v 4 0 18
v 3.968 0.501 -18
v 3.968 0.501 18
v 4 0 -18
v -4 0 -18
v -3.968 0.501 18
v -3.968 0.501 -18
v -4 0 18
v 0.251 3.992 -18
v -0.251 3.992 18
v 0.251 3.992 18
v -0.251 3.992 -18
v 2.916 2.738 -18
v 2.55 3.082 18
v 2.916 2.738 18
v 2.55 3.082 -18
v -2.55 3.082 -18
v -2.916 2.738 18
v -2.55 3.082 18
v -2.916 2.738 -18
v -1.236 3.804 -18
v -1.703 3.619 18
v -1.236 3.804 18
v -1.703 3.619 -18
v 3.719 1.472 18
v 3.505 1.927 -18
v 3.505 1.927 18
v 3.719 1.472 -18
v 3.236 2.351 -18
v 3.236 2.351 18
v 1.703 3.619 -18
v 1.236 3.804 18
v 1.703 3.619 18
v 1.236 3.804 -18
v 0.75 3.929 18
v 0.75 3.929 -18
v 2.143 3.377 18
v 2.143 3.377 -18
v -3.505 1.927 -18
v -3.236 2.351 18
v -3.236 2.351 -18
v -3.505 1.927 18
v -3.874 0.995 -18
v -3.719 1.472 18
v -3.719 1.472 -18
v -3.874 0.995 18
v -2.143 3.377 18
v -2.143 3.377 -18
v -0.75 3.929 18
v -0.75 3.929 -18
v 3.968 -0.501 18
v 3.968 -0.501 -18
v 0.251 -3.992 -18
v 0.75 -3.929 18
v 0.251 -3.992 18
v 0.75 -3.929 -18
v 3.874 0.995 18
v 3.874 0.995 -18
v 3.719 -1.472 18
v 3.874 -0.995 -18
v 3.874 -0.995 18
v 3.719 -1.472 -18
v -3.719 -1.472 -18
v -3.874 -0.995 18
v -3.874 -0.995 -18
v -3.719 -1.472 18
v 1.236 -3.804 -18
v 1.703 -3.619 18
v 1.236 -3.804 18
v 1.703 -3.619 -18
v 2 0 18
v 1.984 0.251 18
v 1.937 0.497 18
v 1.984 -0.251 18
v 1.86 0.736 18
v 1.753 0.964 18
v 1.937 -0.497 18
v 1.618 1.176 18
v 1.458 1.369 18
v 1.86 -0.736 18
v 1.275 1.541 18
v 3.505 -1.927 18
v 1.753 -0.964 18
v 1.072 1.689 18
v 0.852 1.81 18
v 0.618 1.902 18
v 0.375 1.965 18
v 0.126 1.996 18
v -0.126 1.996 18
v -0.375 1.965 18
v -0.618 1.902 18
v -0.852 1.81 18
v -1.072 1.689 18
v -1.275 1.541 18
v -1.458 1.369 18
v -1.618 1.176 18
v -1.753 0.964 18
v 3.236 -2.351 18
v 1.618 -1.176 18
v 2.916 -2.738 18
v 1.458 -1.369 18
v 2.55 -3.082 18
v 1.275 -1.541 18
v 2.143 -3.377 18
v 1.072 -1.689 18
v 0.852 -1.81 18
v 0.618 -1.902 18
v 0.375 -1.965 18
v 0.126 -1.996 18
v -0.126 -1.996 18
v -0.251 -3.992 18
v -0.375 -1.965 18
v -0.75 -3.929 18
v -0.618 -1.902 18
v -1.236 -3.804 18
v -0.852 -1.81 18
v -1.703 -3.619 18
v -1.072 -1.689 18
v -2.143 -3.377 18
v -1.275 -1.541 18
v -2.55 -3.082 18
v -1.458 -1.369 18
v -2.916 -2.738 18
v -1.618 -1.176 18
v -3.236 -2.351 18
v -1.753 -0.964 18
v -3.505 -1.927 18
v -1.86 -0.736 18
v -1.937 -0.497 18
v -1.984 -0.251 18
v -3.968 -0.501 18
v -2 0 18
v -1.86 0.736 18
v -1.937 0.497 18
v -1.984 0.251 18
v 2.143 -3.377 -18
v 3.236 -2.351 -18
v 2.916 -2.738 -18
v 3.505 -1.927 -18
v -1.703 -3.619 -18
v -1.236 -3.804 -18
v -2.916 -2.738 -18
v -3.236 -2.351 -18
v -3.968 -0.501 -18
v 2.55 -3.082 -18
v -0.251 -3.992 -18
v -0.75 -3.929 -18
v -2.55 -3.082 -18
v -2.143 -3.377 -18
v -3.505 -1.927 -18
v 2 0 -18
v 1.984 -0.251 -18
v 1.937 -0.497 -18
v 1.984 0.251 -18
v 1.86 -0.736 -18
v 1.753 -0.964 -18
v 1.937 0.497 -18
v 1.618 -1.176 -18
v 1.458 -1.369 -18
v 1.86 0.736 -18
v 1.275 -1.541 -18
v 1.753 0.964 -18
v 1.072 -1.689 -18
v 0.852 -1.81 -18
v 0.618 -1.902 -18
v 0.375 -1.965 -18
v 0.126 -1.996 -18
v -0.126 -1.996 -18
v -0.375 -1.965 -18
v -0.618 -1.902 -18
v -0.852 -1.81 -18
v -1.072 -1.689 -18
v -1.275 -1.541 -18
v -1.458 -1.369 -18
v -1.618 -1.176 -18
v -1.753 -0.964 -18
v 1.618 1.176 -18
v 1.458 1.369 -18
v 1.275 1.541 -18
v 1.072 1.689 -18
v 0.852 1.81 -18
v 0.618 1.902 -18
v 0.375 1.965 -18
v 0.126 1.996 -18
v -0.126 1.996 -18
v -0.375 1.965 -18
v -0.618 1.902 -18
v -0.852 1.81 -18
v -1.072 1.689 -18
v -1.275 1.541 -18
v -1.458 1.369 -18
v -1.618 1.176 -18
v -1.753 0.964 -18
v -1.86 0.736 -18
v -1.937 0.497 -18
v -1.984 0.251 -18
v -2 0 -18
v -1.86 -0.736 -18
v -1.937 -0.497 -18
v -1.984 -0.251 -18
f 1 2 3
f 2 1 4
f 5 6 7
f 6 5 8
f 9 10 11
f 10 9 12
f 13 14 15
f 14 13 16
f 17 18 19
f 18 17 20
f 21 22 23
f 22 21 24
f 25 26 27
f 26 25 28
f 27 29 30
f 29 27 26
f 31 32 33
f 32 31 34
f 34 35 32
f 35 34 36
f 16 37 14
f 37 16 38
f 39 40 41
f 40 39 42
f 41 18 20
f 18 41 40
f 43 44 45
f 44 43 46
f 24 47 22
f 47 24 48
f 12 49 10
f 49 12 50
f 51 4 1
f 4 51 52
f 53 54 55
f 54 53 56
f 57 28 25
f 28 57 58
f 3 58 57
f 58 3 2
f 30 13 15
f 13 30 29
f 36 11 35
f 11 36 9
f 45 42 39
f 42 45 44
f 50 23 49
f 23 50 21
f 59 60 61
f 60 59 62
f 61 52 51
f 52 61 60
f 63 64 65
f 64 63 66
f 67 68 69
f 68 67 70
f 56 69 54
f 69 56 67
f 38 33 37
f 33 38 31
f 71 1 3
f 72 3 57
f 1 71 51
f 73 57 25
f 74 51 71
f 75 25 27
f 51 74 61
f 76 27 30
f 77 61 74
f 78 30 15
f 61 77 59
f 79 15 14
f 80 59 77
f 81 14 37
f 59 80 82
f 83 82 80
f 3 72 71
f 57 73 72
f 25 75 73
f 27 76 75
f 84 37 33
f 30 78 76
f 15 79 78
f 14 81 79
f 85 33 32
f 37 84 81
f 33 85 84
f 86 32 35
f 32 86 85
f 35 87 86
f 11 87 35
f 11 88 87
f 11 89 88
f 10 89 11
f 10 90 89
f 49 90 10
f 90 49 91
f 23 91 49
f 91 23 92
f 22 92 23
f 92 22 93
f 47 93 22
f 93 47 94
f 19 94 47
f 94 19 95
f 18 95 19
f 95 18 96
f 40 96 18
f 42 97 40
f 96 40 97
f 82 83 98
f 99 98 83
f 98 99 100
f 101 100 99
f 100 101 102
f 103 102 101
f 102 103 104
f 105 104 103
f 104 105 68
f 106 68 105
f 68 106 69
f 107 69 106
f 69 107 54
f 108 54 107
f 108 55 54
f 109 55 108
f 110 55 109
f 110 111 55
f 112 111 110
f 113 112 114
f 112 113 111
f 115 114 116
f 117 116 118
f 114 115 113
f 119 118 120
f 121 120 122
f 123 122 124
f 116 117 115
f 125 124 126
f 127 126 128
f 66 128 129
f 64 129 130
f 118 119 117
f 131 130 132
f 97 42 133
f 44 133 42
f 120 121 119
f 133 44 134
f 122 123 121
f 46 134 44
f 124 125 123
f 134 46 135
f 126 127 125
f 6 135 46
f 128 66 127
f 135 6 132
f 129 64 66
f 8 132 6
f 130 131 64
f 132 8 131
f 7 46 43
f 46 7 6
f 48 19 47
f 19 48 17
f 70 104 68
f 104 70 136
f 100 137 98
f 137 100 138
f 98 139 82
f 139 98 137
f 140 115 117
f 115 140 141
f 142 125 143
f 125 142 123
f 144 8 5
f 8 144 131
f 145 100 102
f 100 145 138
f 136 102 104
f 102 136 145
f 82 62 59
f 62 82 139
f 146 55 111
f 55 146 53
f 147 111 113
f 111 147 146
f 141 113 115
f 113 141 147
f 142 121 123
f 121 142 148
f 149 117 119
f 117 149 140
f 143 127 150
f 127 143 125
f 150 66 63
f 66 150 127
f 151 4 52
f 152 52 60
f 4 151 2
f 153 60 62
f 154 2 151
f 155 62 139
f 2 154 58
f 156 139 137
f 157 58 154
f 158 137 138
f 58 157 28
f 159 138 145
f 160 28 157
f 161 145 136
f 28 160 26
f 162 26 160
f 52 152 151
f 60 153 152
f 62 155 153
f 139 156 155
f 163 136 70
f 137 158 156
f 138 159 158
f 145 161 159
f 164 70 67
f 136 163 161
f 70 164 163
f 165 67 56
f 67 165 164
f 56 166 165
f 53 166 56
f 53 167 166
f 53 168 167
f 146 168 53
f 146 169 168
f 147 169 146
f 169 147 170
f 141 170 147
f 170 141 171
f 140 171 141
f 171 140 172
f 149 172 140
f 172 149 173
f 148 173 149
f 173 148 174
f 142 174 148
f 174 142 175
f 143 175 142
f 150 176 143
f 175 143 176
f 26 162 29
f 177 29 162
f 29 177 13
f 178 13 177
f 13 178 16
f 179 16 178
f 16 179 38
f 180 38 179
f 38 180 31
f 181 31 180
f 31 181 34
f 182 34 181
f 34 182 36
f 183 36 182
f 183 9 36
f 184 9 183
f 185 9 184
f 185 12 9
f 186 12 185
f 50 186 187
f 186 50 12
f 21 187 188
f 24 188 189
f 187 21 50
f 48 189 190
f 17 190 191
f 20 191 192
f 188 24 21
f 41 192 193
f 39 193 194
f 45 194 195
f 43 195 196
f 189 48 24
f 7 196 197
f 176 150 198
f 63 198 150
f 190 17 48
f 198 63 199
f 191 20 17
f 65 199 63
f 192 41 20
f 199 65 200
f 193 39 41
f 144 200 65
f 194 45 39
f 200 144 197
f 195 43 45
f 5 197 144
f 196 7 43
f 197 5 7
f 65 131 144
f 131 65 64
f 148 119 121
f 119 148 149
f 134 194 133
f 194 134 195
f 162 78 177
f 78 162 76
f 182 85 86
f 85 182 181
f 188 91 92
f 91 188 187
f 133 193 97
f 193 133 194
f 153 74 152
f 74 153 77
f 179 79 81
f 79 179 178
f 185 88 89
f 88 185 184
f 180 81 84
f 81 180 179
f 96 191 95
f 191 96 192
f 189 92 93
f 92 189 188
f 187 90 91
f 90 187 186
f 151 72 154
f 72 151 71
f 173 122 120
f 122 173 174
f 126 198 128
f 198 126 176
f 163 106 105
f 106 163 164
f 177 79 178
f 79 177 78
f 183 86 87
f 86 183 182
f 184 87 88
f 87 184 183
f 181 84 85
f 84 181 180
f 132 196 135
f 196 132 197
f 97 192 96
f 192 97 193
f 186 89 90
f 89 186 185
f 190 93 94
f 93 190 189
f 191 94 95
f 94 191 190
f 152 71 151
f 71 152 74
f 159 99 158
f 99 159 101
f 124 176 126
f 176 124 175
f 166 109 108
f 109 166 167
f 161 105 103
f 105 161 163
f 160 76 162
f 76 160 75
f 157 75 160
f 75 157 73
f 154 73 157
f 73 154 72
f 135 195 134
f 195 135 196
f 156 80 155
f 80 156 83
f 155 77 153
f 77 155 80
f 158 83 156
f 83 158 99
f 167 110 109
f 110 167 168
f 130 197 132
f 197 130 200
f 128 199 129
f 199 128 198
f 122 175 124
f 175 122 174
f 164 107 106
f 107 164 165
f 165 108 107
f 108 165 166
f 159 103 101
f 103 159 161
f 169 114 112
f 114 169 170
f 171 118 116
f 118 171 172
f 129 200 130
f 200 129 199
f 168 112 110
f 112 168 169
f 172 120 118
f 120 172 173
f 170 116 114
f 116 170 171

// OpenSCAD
$fn = 50;


difference() {
	union() {
		translate(v = [0, 0, -18.0000000000]) {
			cylinder(h = 36, r = 4.0000000000);
		}
	}
	union() {
		translate(v = [0, 0, -100.0000000000]) {
			cylinder(h = 200, r = 2.0000000000);
		}
	}
}
